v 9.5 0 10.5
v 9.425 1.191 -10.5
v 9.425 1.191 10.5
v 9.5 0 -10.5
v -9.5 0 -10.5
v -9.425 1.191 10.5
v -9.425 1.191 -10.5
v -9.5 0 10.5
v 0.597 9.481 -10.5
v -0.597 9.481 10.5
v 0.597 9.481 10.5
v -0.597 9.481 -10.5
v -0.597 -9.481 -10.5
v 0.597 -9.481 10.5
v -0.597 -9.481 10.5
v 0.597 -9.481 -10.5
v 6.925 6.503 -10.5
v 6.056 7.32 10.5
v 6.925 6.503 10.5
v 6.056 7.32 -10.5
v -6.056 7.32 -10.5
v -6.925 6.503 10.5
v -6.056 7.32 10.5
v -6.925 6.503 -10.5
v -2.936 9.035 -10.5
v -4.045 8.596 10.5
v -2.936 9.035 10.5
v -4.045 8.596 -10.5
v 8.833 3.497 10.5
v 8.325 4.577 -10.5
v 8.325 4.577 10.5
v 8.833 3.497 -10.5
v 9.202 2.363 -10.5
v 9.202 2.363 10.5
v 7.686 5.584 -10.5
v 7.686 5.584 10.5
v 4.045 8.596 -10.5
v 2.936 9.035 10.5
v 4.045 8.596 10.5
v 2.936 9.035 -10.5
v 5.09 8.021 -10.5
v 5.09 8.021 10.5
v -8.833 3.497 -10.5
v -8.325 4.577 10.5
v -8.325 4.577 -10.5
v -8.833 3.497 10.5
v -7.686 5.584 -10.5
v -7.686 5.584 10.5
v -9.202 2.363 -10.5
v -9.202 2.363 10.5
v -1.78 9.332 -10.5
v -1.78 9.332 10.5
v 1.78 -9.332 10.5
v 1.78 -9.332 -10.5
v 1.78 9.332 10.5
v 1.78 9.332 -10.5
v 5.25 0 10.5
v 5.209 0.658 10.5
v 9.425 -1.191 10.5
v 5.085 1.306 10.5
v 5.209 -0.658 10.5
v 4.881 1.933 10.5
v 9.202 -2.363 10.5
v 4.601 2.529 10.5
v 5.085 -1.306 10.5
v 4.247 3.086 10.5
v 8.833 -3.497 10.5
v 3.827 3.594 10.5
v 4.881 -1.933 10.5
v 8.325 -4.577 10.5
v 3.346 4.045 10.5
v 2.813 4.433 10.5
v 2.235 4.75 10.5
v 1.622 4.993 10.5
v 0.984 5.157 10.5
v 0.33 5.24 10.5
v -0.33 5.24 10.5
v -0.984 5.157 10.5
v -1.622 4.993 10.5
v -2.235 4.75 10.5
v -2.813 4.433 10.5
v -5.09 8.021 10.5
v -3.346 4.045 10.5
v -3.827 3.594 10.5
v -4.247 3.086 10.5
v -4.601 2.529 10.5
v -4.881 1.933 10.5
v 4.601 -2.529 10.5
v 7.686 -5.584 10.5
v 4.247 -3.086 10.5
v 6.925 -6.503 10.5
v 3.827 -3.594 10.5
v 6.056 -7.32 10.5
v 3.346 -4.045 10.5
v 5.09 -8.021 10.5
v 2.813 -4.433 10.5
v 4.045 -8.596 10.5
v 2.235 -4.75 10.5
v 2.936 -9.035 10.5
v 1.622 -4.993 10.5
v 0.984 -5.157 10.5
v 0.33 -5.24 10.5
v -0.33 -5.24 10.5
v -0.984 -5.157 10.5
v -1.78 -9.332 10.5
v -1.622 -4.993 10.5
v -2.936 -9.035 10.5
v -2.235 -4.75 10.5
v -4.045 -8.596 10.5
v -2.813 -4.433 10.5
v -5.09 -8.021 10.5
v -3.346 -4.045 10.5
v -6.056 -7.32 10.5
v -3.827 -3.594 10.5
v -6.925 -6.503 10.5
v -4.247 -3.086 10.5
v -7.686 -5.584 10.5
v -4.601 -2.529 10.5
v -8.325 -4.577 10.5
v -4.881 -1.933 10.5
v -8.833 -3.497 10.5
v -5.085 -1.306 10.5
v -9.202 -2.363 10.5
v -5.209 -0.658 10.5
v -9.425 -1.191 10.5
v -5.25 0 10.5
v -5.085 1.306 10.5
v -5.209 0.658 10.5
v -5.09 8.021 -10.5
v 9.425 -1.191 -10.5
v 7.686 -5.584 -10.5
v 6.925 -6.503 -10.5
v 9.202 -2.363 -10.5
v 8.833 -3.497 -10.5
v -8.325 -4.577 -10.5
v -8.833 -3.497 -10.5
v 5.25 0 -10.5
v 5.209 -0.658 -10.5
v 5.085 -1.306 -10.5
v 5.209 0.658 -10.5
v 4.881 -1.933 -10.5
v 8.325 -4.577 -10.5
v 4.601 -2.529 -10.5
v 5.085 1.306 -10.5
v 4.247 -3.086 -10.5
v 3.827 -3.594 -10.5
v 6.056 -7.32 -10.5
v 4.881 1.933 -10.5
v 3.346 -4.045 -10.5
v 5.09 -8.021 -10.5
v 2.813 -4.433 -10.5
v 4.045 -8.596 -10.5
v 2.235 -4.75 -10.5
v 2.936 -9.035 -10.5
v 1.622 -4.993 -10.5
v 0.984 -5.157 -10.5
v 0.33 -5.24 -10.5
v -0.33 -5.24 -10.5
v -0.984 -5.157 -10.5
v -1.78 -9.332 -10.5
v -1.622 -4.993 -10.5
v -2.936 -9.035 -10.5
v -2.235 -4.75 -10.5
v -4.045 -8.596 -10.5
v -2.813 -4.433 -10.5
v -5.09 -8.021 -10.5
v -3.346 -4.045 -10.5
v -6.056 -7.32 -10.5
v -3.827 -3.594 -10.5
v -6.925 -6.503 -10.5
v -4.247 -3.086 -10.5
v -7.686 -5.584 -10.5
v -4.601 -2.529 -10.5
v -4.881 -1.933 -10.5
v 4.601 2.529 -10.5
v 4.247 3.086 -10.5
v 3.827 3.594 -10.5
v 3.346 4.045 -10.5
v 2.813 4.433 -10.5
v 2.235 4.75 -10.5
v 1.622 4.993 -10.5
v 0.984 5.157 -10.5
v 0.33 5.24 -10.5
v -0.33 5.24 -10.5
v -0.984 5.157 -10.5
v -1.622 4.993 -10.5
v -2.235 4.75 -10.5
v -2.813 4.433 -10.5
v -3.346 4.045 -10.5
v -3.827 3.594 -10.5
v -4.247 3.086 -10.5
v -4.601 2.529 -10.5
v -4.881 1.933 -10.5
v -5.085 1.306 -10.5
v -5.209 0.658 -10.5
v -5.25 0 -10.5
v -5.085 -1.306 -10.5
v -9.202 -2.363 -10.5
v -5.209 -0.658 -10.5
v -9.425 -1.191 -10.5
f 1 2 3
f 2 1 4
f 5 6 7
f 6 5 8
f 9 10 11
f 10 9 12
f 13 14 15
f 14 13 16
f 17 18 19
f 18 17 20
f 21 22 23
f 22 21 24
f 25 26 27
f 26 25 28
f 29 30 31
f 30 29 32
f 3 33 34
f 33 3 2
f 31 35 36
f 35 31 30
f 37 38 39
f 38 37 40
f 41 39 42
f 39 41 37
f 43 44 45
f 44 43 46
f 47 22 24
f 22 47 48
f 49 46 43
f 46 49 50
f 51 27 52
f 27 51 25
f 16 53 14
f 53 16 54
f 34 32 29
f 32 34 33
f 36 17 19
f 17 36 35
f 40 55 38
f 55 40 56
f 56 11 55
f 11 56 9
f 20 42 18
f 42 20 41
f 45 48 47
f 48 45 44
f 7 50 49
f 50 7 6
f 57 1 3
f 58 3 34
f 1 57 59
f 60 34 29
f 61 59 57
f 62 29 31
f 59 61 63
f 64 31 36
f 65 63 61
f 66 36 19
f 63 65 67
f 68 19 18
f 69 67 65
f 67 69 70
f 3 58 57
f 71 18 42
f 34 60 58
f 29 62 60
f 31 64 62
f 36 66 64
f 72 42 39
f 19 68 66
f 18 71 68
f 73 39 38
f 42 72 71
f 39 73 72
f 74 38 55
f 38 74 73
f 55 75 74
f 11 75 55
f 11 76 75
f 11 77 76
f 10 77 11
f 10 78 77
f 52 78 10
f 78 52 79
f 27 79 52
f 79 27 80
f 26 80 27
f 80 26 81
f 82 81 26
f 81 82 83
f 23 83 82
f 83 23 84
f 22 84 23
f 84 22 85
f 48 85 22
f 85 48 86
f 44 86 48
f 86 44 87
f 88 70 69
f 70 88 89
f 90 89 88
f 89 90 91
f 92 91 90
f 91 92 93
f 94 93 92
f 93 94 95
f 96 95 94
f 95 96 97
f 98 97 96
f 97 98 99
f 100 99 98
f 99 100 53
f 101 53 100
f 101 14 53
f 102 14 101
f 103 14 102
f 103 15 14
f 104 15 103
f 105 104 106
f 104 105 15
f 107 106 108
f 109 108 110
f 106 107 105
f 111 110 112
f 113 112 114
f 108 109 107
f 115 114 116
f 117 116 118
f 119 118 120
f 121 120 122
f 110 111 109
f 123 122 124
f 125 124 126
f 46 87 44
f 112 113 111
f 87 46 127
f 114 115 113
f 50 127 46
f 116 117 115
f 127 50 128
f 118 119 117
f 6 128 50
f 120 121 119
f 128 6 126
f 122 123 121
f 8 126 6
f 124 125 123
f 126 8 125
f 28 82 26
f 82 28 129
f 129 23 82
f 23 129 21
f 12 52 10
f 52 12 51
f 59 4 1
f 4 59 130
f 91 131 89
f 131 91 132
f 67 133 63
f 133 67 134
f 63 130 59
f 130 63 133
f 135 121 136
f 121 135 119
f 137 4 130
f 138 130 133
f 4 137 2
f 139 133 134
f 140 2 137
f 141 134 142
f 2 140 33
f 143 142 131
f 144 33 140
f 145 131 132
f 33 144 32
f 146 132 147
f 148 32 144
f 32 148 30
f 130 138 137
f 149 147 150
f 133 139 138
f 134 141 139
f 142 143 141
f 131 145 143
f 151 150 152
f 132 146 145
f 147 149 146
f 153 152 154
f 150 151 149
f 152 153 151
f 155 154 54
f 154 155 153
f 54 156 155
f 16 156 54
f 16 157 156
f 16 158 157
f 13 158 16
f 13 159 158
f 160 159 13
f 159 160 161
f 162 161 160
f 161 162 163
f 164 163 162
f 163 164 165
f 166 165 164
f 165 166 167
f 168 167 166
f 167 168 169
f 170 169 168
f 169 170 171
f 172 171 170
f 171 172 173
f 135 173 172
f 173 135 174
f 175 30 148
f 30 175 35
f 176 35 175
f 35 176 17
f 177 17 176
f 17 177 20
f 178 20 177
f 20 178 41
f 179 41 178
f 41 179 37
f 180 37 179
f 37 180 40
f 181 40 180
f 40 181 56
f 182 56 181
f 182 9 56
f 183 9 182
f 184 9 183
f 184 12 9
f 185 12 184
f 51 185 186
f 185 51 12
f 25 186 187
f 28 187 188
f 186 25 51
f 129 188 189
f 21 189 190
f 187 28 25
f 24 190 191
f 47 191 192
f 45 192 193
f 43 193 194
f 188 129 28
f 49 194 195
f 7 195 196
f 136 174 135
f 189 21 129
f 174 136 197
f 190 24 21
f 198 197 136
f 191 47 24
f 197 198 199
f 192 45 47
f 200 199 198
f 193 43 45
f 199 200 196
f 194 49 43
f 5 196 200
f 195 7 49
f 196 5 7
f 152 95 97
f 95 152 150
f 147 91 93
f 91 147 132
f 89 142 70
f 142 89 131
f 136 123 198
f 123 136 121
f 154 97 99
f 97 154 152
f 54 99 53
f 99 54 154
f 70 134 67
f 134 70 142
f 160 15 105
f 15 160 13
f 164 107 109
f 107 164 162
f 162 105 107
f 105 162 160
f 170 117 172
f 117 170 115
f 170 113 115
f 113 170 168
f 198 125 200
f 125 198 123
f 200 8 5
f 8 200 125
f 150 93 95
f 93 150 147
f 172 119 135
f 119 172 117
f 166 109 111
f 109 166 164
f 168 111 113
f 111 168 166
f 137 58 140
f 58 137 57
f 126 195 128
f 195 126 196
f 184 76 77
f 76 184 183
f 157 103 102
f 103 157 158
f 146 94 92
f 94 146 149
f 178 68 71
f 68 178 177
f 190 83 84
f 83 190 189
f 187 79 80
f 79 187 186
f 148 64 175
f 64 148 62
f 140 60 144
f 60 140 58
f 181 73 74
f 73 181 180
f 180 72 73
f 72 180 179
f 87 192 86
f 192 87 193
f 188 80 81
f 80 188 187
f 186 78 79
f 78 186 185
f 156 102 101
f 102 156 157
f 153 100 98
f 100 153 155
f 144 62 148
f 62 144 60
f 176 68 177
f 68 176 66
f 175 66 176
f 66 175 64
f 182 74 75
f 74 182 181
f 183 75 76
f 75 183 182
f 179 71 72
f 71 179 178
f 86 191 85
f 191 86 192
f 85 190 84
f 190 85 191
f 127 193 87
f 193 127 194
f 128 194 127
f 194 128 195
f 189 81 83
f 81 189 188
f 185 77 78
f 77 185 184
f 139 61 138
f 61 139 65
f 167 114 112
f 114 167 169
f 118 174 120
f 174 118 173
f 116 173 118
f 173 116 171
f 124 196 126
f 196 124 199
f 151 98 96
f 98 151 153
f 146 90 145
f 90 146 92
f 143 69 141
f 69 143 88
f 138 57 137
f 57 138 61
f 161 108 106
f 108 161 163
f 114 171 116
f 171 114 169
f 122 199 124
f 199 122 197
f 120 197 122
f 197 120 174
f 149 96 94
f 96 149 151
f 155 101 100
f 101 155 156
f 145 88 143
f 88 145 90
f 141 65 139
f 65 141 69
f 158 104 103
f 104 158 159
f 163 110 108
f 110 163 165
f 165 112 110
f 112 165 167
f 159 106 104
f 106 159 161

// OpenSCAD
$fn = 50;


difference() {
	union() {
		translate(v = [0, 0, -10.5000000000]) {
			cylinder(h = 21, r = 9.5000000000);
		}
	}
	union() {
		translate(v = [0, 0, -100.0000000000]) {
			cylinder(h = 200, r = 5.2500000000);
		}
	}
}
